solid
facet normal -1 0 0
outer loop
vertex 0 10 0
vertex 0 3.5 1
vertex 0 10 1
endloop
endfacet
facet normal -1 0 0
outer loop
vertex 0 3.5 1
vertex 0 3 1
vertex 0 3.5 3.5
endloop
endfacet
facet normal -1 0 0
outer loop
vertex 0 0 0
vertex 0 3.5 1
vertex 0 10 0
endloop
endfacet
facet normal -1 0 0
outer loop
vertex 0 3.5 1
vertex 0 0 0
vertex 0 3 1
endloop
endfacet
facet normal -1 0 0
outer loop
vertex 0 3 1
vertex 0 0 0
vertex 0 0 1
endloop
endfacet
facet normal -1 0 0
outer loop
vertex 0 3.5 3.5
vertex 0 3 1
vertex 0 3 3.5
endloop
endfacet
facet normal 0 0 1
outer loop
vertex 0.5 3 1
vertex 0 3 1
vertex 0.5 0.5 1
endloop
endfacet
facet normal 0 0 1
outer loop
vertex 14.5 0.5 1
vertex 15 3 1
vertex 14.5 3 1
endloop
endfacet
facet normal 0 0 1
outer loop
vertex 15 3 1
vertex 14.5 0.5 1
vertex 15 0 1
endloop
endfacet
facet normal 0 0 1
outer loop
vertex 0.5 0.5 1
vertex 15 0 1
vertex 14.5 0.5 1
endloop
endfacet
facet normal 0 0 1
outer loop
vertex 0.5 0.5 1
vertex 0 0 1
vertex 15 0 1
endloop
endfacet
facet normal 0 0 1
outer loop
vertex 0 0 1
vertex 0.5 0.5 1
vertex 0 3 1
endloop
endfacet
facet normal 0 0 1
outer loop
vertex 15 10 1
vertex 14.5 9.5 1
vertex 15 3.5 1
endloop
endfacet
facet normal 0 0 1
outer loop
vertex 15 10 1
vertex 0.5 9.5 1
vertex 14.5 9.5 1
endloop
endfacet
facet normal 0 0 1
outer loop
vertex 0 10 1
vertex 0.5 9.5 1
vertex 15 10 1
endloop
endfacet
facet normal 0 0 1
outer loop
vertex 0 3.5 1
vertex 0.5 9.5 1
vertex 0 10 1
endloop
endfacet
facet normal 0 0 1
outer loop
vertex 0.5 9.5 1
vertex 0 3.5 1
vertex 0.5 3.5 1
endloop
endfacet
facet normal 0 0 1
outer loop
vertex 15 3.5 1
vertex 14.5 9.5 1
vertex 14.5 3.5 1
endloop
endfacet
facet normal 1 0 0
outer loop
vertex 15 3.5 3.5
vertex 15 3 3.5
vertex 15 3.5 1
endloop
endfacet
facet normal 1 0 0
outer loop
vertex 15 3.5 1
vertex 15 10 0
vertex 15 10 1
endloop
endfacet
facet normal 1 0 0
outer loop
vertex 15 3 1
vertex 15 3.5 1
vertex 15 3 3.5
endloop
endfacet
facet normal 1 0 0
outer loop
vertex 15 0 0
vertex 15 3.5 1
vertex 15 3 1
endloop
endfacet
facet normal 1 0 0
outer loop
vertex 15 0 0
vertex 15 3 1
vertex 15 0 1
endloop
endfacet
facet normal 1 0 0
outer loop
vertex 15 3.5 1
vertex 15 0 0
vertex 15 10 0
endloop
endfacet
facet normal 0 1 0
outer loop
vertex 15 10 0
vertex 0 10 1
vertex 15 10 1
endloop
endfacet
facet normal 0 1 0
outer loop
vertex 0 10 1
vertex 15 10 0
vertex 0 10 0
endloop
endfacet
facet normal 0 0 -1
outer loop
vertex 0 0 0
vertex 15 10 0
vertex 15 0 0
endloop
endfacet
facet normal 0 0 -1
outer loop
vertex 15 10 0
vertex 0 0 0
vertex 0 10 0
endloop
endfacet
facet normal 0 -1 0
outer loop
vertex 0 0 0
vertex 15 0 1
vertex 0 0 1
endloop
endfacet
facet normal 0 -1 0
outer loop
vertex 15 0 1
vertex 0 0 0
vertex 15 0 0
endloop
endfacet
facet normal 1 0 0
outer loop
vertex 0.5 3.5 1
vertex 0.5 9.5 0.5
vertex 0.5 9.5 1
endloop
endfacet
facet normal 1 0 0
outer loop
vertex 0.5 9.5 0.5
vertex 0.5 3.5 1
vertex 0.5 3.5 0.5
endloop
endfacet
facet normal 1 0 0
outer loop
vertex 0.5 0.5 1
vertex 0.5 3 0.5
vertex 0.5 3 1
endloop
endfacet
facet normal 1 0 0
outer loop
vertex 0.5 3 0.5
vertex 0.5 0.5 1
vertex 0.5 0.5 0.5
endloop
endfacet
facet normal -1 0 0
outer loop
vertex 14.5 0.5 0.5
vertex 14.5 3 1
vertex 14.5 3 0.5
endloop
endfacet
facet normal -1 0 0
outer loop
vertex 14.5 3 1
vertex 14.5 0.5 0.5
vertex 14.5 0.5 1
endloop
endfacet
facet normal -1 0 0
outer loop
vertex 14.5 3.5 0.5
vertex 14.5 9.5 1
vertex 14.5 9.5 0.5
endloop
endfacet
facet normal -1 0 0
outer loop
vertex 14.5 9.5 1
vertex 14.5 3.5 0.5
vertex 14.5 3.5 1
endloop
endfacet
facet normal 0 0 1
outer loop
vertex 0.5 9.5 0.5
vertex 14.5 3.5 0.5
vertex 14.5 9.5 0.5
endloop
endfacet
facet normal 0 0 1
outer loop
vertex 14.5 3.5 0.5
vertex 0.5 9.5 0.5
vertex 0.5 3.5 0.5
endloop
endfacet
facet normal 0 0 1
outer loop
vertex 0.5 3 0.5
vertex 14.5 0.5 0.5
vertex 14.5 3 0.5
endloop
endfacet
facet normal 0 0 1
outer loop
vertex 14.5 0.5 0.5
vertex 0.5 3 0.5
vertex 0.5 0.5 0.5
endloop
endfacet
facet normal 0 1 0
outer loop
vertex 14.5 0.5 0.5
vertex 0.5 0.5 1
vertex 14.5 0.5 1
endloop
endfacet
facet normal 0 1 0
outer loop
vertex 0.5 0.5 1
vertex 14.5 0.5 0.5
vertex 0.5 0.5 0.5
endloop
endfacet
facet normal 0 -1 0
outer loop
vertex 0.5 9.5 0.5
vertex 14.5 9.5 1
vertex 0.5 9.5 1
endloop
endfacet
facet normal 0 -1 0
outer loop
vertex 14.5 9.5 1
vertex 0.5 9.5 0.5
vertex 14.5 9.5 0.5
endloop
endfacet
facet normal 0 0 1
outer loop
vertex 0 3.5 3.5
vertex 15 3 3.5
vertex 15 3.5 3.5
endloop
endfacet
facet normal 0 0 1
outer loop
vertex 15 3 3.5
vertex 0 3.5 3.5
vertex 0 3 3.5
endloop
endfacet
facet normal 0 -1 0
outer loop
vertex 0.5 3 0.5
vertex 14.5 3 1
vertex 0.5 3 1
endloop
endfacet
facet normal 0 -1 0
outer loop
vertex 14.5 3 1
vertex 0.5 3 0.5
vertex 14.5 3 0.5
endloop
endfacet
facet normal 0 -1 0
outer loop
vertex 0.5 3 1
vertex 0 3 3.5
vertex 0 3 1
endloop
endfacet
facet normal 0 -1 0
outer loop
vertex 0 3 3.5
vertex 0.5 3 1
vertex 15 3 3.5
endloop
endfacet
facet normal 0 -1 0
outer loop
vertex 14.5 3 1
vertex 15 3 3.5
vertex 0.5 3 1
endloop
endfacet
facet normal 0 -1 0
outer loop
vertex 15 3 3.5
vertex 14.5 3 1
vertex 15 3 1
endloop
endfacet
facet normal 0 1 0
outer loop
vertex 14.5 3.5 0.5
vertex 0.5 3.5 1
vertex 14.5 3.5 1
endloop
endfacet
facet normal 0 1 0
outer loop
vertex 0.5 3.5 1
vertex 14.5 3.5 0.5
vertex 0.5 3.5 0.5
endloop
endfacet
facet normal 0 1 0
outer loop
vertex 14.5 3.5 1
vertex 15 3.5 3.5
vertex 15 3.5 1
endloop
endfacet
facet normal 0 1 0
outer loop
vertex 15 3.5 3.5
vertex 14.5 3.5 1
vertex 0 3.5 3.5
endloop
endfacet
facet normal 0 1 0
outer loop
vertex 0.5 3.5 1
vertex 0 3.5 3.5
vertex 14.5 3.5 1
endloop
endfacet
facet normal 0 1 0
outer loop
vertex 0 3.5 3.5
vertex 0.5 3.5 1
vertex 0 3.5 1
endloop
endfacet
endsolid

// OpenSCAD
// Base of the Nixie clock case


module nixieBase() {
    difference() {
        cube([15, 10, 1]);
        translate([.5, .5, .5])
            cube([14, 9, 2]);
    }

    translate([0, 3, .5])
        cube([15, .5, 3]);
}

nixieBase();
